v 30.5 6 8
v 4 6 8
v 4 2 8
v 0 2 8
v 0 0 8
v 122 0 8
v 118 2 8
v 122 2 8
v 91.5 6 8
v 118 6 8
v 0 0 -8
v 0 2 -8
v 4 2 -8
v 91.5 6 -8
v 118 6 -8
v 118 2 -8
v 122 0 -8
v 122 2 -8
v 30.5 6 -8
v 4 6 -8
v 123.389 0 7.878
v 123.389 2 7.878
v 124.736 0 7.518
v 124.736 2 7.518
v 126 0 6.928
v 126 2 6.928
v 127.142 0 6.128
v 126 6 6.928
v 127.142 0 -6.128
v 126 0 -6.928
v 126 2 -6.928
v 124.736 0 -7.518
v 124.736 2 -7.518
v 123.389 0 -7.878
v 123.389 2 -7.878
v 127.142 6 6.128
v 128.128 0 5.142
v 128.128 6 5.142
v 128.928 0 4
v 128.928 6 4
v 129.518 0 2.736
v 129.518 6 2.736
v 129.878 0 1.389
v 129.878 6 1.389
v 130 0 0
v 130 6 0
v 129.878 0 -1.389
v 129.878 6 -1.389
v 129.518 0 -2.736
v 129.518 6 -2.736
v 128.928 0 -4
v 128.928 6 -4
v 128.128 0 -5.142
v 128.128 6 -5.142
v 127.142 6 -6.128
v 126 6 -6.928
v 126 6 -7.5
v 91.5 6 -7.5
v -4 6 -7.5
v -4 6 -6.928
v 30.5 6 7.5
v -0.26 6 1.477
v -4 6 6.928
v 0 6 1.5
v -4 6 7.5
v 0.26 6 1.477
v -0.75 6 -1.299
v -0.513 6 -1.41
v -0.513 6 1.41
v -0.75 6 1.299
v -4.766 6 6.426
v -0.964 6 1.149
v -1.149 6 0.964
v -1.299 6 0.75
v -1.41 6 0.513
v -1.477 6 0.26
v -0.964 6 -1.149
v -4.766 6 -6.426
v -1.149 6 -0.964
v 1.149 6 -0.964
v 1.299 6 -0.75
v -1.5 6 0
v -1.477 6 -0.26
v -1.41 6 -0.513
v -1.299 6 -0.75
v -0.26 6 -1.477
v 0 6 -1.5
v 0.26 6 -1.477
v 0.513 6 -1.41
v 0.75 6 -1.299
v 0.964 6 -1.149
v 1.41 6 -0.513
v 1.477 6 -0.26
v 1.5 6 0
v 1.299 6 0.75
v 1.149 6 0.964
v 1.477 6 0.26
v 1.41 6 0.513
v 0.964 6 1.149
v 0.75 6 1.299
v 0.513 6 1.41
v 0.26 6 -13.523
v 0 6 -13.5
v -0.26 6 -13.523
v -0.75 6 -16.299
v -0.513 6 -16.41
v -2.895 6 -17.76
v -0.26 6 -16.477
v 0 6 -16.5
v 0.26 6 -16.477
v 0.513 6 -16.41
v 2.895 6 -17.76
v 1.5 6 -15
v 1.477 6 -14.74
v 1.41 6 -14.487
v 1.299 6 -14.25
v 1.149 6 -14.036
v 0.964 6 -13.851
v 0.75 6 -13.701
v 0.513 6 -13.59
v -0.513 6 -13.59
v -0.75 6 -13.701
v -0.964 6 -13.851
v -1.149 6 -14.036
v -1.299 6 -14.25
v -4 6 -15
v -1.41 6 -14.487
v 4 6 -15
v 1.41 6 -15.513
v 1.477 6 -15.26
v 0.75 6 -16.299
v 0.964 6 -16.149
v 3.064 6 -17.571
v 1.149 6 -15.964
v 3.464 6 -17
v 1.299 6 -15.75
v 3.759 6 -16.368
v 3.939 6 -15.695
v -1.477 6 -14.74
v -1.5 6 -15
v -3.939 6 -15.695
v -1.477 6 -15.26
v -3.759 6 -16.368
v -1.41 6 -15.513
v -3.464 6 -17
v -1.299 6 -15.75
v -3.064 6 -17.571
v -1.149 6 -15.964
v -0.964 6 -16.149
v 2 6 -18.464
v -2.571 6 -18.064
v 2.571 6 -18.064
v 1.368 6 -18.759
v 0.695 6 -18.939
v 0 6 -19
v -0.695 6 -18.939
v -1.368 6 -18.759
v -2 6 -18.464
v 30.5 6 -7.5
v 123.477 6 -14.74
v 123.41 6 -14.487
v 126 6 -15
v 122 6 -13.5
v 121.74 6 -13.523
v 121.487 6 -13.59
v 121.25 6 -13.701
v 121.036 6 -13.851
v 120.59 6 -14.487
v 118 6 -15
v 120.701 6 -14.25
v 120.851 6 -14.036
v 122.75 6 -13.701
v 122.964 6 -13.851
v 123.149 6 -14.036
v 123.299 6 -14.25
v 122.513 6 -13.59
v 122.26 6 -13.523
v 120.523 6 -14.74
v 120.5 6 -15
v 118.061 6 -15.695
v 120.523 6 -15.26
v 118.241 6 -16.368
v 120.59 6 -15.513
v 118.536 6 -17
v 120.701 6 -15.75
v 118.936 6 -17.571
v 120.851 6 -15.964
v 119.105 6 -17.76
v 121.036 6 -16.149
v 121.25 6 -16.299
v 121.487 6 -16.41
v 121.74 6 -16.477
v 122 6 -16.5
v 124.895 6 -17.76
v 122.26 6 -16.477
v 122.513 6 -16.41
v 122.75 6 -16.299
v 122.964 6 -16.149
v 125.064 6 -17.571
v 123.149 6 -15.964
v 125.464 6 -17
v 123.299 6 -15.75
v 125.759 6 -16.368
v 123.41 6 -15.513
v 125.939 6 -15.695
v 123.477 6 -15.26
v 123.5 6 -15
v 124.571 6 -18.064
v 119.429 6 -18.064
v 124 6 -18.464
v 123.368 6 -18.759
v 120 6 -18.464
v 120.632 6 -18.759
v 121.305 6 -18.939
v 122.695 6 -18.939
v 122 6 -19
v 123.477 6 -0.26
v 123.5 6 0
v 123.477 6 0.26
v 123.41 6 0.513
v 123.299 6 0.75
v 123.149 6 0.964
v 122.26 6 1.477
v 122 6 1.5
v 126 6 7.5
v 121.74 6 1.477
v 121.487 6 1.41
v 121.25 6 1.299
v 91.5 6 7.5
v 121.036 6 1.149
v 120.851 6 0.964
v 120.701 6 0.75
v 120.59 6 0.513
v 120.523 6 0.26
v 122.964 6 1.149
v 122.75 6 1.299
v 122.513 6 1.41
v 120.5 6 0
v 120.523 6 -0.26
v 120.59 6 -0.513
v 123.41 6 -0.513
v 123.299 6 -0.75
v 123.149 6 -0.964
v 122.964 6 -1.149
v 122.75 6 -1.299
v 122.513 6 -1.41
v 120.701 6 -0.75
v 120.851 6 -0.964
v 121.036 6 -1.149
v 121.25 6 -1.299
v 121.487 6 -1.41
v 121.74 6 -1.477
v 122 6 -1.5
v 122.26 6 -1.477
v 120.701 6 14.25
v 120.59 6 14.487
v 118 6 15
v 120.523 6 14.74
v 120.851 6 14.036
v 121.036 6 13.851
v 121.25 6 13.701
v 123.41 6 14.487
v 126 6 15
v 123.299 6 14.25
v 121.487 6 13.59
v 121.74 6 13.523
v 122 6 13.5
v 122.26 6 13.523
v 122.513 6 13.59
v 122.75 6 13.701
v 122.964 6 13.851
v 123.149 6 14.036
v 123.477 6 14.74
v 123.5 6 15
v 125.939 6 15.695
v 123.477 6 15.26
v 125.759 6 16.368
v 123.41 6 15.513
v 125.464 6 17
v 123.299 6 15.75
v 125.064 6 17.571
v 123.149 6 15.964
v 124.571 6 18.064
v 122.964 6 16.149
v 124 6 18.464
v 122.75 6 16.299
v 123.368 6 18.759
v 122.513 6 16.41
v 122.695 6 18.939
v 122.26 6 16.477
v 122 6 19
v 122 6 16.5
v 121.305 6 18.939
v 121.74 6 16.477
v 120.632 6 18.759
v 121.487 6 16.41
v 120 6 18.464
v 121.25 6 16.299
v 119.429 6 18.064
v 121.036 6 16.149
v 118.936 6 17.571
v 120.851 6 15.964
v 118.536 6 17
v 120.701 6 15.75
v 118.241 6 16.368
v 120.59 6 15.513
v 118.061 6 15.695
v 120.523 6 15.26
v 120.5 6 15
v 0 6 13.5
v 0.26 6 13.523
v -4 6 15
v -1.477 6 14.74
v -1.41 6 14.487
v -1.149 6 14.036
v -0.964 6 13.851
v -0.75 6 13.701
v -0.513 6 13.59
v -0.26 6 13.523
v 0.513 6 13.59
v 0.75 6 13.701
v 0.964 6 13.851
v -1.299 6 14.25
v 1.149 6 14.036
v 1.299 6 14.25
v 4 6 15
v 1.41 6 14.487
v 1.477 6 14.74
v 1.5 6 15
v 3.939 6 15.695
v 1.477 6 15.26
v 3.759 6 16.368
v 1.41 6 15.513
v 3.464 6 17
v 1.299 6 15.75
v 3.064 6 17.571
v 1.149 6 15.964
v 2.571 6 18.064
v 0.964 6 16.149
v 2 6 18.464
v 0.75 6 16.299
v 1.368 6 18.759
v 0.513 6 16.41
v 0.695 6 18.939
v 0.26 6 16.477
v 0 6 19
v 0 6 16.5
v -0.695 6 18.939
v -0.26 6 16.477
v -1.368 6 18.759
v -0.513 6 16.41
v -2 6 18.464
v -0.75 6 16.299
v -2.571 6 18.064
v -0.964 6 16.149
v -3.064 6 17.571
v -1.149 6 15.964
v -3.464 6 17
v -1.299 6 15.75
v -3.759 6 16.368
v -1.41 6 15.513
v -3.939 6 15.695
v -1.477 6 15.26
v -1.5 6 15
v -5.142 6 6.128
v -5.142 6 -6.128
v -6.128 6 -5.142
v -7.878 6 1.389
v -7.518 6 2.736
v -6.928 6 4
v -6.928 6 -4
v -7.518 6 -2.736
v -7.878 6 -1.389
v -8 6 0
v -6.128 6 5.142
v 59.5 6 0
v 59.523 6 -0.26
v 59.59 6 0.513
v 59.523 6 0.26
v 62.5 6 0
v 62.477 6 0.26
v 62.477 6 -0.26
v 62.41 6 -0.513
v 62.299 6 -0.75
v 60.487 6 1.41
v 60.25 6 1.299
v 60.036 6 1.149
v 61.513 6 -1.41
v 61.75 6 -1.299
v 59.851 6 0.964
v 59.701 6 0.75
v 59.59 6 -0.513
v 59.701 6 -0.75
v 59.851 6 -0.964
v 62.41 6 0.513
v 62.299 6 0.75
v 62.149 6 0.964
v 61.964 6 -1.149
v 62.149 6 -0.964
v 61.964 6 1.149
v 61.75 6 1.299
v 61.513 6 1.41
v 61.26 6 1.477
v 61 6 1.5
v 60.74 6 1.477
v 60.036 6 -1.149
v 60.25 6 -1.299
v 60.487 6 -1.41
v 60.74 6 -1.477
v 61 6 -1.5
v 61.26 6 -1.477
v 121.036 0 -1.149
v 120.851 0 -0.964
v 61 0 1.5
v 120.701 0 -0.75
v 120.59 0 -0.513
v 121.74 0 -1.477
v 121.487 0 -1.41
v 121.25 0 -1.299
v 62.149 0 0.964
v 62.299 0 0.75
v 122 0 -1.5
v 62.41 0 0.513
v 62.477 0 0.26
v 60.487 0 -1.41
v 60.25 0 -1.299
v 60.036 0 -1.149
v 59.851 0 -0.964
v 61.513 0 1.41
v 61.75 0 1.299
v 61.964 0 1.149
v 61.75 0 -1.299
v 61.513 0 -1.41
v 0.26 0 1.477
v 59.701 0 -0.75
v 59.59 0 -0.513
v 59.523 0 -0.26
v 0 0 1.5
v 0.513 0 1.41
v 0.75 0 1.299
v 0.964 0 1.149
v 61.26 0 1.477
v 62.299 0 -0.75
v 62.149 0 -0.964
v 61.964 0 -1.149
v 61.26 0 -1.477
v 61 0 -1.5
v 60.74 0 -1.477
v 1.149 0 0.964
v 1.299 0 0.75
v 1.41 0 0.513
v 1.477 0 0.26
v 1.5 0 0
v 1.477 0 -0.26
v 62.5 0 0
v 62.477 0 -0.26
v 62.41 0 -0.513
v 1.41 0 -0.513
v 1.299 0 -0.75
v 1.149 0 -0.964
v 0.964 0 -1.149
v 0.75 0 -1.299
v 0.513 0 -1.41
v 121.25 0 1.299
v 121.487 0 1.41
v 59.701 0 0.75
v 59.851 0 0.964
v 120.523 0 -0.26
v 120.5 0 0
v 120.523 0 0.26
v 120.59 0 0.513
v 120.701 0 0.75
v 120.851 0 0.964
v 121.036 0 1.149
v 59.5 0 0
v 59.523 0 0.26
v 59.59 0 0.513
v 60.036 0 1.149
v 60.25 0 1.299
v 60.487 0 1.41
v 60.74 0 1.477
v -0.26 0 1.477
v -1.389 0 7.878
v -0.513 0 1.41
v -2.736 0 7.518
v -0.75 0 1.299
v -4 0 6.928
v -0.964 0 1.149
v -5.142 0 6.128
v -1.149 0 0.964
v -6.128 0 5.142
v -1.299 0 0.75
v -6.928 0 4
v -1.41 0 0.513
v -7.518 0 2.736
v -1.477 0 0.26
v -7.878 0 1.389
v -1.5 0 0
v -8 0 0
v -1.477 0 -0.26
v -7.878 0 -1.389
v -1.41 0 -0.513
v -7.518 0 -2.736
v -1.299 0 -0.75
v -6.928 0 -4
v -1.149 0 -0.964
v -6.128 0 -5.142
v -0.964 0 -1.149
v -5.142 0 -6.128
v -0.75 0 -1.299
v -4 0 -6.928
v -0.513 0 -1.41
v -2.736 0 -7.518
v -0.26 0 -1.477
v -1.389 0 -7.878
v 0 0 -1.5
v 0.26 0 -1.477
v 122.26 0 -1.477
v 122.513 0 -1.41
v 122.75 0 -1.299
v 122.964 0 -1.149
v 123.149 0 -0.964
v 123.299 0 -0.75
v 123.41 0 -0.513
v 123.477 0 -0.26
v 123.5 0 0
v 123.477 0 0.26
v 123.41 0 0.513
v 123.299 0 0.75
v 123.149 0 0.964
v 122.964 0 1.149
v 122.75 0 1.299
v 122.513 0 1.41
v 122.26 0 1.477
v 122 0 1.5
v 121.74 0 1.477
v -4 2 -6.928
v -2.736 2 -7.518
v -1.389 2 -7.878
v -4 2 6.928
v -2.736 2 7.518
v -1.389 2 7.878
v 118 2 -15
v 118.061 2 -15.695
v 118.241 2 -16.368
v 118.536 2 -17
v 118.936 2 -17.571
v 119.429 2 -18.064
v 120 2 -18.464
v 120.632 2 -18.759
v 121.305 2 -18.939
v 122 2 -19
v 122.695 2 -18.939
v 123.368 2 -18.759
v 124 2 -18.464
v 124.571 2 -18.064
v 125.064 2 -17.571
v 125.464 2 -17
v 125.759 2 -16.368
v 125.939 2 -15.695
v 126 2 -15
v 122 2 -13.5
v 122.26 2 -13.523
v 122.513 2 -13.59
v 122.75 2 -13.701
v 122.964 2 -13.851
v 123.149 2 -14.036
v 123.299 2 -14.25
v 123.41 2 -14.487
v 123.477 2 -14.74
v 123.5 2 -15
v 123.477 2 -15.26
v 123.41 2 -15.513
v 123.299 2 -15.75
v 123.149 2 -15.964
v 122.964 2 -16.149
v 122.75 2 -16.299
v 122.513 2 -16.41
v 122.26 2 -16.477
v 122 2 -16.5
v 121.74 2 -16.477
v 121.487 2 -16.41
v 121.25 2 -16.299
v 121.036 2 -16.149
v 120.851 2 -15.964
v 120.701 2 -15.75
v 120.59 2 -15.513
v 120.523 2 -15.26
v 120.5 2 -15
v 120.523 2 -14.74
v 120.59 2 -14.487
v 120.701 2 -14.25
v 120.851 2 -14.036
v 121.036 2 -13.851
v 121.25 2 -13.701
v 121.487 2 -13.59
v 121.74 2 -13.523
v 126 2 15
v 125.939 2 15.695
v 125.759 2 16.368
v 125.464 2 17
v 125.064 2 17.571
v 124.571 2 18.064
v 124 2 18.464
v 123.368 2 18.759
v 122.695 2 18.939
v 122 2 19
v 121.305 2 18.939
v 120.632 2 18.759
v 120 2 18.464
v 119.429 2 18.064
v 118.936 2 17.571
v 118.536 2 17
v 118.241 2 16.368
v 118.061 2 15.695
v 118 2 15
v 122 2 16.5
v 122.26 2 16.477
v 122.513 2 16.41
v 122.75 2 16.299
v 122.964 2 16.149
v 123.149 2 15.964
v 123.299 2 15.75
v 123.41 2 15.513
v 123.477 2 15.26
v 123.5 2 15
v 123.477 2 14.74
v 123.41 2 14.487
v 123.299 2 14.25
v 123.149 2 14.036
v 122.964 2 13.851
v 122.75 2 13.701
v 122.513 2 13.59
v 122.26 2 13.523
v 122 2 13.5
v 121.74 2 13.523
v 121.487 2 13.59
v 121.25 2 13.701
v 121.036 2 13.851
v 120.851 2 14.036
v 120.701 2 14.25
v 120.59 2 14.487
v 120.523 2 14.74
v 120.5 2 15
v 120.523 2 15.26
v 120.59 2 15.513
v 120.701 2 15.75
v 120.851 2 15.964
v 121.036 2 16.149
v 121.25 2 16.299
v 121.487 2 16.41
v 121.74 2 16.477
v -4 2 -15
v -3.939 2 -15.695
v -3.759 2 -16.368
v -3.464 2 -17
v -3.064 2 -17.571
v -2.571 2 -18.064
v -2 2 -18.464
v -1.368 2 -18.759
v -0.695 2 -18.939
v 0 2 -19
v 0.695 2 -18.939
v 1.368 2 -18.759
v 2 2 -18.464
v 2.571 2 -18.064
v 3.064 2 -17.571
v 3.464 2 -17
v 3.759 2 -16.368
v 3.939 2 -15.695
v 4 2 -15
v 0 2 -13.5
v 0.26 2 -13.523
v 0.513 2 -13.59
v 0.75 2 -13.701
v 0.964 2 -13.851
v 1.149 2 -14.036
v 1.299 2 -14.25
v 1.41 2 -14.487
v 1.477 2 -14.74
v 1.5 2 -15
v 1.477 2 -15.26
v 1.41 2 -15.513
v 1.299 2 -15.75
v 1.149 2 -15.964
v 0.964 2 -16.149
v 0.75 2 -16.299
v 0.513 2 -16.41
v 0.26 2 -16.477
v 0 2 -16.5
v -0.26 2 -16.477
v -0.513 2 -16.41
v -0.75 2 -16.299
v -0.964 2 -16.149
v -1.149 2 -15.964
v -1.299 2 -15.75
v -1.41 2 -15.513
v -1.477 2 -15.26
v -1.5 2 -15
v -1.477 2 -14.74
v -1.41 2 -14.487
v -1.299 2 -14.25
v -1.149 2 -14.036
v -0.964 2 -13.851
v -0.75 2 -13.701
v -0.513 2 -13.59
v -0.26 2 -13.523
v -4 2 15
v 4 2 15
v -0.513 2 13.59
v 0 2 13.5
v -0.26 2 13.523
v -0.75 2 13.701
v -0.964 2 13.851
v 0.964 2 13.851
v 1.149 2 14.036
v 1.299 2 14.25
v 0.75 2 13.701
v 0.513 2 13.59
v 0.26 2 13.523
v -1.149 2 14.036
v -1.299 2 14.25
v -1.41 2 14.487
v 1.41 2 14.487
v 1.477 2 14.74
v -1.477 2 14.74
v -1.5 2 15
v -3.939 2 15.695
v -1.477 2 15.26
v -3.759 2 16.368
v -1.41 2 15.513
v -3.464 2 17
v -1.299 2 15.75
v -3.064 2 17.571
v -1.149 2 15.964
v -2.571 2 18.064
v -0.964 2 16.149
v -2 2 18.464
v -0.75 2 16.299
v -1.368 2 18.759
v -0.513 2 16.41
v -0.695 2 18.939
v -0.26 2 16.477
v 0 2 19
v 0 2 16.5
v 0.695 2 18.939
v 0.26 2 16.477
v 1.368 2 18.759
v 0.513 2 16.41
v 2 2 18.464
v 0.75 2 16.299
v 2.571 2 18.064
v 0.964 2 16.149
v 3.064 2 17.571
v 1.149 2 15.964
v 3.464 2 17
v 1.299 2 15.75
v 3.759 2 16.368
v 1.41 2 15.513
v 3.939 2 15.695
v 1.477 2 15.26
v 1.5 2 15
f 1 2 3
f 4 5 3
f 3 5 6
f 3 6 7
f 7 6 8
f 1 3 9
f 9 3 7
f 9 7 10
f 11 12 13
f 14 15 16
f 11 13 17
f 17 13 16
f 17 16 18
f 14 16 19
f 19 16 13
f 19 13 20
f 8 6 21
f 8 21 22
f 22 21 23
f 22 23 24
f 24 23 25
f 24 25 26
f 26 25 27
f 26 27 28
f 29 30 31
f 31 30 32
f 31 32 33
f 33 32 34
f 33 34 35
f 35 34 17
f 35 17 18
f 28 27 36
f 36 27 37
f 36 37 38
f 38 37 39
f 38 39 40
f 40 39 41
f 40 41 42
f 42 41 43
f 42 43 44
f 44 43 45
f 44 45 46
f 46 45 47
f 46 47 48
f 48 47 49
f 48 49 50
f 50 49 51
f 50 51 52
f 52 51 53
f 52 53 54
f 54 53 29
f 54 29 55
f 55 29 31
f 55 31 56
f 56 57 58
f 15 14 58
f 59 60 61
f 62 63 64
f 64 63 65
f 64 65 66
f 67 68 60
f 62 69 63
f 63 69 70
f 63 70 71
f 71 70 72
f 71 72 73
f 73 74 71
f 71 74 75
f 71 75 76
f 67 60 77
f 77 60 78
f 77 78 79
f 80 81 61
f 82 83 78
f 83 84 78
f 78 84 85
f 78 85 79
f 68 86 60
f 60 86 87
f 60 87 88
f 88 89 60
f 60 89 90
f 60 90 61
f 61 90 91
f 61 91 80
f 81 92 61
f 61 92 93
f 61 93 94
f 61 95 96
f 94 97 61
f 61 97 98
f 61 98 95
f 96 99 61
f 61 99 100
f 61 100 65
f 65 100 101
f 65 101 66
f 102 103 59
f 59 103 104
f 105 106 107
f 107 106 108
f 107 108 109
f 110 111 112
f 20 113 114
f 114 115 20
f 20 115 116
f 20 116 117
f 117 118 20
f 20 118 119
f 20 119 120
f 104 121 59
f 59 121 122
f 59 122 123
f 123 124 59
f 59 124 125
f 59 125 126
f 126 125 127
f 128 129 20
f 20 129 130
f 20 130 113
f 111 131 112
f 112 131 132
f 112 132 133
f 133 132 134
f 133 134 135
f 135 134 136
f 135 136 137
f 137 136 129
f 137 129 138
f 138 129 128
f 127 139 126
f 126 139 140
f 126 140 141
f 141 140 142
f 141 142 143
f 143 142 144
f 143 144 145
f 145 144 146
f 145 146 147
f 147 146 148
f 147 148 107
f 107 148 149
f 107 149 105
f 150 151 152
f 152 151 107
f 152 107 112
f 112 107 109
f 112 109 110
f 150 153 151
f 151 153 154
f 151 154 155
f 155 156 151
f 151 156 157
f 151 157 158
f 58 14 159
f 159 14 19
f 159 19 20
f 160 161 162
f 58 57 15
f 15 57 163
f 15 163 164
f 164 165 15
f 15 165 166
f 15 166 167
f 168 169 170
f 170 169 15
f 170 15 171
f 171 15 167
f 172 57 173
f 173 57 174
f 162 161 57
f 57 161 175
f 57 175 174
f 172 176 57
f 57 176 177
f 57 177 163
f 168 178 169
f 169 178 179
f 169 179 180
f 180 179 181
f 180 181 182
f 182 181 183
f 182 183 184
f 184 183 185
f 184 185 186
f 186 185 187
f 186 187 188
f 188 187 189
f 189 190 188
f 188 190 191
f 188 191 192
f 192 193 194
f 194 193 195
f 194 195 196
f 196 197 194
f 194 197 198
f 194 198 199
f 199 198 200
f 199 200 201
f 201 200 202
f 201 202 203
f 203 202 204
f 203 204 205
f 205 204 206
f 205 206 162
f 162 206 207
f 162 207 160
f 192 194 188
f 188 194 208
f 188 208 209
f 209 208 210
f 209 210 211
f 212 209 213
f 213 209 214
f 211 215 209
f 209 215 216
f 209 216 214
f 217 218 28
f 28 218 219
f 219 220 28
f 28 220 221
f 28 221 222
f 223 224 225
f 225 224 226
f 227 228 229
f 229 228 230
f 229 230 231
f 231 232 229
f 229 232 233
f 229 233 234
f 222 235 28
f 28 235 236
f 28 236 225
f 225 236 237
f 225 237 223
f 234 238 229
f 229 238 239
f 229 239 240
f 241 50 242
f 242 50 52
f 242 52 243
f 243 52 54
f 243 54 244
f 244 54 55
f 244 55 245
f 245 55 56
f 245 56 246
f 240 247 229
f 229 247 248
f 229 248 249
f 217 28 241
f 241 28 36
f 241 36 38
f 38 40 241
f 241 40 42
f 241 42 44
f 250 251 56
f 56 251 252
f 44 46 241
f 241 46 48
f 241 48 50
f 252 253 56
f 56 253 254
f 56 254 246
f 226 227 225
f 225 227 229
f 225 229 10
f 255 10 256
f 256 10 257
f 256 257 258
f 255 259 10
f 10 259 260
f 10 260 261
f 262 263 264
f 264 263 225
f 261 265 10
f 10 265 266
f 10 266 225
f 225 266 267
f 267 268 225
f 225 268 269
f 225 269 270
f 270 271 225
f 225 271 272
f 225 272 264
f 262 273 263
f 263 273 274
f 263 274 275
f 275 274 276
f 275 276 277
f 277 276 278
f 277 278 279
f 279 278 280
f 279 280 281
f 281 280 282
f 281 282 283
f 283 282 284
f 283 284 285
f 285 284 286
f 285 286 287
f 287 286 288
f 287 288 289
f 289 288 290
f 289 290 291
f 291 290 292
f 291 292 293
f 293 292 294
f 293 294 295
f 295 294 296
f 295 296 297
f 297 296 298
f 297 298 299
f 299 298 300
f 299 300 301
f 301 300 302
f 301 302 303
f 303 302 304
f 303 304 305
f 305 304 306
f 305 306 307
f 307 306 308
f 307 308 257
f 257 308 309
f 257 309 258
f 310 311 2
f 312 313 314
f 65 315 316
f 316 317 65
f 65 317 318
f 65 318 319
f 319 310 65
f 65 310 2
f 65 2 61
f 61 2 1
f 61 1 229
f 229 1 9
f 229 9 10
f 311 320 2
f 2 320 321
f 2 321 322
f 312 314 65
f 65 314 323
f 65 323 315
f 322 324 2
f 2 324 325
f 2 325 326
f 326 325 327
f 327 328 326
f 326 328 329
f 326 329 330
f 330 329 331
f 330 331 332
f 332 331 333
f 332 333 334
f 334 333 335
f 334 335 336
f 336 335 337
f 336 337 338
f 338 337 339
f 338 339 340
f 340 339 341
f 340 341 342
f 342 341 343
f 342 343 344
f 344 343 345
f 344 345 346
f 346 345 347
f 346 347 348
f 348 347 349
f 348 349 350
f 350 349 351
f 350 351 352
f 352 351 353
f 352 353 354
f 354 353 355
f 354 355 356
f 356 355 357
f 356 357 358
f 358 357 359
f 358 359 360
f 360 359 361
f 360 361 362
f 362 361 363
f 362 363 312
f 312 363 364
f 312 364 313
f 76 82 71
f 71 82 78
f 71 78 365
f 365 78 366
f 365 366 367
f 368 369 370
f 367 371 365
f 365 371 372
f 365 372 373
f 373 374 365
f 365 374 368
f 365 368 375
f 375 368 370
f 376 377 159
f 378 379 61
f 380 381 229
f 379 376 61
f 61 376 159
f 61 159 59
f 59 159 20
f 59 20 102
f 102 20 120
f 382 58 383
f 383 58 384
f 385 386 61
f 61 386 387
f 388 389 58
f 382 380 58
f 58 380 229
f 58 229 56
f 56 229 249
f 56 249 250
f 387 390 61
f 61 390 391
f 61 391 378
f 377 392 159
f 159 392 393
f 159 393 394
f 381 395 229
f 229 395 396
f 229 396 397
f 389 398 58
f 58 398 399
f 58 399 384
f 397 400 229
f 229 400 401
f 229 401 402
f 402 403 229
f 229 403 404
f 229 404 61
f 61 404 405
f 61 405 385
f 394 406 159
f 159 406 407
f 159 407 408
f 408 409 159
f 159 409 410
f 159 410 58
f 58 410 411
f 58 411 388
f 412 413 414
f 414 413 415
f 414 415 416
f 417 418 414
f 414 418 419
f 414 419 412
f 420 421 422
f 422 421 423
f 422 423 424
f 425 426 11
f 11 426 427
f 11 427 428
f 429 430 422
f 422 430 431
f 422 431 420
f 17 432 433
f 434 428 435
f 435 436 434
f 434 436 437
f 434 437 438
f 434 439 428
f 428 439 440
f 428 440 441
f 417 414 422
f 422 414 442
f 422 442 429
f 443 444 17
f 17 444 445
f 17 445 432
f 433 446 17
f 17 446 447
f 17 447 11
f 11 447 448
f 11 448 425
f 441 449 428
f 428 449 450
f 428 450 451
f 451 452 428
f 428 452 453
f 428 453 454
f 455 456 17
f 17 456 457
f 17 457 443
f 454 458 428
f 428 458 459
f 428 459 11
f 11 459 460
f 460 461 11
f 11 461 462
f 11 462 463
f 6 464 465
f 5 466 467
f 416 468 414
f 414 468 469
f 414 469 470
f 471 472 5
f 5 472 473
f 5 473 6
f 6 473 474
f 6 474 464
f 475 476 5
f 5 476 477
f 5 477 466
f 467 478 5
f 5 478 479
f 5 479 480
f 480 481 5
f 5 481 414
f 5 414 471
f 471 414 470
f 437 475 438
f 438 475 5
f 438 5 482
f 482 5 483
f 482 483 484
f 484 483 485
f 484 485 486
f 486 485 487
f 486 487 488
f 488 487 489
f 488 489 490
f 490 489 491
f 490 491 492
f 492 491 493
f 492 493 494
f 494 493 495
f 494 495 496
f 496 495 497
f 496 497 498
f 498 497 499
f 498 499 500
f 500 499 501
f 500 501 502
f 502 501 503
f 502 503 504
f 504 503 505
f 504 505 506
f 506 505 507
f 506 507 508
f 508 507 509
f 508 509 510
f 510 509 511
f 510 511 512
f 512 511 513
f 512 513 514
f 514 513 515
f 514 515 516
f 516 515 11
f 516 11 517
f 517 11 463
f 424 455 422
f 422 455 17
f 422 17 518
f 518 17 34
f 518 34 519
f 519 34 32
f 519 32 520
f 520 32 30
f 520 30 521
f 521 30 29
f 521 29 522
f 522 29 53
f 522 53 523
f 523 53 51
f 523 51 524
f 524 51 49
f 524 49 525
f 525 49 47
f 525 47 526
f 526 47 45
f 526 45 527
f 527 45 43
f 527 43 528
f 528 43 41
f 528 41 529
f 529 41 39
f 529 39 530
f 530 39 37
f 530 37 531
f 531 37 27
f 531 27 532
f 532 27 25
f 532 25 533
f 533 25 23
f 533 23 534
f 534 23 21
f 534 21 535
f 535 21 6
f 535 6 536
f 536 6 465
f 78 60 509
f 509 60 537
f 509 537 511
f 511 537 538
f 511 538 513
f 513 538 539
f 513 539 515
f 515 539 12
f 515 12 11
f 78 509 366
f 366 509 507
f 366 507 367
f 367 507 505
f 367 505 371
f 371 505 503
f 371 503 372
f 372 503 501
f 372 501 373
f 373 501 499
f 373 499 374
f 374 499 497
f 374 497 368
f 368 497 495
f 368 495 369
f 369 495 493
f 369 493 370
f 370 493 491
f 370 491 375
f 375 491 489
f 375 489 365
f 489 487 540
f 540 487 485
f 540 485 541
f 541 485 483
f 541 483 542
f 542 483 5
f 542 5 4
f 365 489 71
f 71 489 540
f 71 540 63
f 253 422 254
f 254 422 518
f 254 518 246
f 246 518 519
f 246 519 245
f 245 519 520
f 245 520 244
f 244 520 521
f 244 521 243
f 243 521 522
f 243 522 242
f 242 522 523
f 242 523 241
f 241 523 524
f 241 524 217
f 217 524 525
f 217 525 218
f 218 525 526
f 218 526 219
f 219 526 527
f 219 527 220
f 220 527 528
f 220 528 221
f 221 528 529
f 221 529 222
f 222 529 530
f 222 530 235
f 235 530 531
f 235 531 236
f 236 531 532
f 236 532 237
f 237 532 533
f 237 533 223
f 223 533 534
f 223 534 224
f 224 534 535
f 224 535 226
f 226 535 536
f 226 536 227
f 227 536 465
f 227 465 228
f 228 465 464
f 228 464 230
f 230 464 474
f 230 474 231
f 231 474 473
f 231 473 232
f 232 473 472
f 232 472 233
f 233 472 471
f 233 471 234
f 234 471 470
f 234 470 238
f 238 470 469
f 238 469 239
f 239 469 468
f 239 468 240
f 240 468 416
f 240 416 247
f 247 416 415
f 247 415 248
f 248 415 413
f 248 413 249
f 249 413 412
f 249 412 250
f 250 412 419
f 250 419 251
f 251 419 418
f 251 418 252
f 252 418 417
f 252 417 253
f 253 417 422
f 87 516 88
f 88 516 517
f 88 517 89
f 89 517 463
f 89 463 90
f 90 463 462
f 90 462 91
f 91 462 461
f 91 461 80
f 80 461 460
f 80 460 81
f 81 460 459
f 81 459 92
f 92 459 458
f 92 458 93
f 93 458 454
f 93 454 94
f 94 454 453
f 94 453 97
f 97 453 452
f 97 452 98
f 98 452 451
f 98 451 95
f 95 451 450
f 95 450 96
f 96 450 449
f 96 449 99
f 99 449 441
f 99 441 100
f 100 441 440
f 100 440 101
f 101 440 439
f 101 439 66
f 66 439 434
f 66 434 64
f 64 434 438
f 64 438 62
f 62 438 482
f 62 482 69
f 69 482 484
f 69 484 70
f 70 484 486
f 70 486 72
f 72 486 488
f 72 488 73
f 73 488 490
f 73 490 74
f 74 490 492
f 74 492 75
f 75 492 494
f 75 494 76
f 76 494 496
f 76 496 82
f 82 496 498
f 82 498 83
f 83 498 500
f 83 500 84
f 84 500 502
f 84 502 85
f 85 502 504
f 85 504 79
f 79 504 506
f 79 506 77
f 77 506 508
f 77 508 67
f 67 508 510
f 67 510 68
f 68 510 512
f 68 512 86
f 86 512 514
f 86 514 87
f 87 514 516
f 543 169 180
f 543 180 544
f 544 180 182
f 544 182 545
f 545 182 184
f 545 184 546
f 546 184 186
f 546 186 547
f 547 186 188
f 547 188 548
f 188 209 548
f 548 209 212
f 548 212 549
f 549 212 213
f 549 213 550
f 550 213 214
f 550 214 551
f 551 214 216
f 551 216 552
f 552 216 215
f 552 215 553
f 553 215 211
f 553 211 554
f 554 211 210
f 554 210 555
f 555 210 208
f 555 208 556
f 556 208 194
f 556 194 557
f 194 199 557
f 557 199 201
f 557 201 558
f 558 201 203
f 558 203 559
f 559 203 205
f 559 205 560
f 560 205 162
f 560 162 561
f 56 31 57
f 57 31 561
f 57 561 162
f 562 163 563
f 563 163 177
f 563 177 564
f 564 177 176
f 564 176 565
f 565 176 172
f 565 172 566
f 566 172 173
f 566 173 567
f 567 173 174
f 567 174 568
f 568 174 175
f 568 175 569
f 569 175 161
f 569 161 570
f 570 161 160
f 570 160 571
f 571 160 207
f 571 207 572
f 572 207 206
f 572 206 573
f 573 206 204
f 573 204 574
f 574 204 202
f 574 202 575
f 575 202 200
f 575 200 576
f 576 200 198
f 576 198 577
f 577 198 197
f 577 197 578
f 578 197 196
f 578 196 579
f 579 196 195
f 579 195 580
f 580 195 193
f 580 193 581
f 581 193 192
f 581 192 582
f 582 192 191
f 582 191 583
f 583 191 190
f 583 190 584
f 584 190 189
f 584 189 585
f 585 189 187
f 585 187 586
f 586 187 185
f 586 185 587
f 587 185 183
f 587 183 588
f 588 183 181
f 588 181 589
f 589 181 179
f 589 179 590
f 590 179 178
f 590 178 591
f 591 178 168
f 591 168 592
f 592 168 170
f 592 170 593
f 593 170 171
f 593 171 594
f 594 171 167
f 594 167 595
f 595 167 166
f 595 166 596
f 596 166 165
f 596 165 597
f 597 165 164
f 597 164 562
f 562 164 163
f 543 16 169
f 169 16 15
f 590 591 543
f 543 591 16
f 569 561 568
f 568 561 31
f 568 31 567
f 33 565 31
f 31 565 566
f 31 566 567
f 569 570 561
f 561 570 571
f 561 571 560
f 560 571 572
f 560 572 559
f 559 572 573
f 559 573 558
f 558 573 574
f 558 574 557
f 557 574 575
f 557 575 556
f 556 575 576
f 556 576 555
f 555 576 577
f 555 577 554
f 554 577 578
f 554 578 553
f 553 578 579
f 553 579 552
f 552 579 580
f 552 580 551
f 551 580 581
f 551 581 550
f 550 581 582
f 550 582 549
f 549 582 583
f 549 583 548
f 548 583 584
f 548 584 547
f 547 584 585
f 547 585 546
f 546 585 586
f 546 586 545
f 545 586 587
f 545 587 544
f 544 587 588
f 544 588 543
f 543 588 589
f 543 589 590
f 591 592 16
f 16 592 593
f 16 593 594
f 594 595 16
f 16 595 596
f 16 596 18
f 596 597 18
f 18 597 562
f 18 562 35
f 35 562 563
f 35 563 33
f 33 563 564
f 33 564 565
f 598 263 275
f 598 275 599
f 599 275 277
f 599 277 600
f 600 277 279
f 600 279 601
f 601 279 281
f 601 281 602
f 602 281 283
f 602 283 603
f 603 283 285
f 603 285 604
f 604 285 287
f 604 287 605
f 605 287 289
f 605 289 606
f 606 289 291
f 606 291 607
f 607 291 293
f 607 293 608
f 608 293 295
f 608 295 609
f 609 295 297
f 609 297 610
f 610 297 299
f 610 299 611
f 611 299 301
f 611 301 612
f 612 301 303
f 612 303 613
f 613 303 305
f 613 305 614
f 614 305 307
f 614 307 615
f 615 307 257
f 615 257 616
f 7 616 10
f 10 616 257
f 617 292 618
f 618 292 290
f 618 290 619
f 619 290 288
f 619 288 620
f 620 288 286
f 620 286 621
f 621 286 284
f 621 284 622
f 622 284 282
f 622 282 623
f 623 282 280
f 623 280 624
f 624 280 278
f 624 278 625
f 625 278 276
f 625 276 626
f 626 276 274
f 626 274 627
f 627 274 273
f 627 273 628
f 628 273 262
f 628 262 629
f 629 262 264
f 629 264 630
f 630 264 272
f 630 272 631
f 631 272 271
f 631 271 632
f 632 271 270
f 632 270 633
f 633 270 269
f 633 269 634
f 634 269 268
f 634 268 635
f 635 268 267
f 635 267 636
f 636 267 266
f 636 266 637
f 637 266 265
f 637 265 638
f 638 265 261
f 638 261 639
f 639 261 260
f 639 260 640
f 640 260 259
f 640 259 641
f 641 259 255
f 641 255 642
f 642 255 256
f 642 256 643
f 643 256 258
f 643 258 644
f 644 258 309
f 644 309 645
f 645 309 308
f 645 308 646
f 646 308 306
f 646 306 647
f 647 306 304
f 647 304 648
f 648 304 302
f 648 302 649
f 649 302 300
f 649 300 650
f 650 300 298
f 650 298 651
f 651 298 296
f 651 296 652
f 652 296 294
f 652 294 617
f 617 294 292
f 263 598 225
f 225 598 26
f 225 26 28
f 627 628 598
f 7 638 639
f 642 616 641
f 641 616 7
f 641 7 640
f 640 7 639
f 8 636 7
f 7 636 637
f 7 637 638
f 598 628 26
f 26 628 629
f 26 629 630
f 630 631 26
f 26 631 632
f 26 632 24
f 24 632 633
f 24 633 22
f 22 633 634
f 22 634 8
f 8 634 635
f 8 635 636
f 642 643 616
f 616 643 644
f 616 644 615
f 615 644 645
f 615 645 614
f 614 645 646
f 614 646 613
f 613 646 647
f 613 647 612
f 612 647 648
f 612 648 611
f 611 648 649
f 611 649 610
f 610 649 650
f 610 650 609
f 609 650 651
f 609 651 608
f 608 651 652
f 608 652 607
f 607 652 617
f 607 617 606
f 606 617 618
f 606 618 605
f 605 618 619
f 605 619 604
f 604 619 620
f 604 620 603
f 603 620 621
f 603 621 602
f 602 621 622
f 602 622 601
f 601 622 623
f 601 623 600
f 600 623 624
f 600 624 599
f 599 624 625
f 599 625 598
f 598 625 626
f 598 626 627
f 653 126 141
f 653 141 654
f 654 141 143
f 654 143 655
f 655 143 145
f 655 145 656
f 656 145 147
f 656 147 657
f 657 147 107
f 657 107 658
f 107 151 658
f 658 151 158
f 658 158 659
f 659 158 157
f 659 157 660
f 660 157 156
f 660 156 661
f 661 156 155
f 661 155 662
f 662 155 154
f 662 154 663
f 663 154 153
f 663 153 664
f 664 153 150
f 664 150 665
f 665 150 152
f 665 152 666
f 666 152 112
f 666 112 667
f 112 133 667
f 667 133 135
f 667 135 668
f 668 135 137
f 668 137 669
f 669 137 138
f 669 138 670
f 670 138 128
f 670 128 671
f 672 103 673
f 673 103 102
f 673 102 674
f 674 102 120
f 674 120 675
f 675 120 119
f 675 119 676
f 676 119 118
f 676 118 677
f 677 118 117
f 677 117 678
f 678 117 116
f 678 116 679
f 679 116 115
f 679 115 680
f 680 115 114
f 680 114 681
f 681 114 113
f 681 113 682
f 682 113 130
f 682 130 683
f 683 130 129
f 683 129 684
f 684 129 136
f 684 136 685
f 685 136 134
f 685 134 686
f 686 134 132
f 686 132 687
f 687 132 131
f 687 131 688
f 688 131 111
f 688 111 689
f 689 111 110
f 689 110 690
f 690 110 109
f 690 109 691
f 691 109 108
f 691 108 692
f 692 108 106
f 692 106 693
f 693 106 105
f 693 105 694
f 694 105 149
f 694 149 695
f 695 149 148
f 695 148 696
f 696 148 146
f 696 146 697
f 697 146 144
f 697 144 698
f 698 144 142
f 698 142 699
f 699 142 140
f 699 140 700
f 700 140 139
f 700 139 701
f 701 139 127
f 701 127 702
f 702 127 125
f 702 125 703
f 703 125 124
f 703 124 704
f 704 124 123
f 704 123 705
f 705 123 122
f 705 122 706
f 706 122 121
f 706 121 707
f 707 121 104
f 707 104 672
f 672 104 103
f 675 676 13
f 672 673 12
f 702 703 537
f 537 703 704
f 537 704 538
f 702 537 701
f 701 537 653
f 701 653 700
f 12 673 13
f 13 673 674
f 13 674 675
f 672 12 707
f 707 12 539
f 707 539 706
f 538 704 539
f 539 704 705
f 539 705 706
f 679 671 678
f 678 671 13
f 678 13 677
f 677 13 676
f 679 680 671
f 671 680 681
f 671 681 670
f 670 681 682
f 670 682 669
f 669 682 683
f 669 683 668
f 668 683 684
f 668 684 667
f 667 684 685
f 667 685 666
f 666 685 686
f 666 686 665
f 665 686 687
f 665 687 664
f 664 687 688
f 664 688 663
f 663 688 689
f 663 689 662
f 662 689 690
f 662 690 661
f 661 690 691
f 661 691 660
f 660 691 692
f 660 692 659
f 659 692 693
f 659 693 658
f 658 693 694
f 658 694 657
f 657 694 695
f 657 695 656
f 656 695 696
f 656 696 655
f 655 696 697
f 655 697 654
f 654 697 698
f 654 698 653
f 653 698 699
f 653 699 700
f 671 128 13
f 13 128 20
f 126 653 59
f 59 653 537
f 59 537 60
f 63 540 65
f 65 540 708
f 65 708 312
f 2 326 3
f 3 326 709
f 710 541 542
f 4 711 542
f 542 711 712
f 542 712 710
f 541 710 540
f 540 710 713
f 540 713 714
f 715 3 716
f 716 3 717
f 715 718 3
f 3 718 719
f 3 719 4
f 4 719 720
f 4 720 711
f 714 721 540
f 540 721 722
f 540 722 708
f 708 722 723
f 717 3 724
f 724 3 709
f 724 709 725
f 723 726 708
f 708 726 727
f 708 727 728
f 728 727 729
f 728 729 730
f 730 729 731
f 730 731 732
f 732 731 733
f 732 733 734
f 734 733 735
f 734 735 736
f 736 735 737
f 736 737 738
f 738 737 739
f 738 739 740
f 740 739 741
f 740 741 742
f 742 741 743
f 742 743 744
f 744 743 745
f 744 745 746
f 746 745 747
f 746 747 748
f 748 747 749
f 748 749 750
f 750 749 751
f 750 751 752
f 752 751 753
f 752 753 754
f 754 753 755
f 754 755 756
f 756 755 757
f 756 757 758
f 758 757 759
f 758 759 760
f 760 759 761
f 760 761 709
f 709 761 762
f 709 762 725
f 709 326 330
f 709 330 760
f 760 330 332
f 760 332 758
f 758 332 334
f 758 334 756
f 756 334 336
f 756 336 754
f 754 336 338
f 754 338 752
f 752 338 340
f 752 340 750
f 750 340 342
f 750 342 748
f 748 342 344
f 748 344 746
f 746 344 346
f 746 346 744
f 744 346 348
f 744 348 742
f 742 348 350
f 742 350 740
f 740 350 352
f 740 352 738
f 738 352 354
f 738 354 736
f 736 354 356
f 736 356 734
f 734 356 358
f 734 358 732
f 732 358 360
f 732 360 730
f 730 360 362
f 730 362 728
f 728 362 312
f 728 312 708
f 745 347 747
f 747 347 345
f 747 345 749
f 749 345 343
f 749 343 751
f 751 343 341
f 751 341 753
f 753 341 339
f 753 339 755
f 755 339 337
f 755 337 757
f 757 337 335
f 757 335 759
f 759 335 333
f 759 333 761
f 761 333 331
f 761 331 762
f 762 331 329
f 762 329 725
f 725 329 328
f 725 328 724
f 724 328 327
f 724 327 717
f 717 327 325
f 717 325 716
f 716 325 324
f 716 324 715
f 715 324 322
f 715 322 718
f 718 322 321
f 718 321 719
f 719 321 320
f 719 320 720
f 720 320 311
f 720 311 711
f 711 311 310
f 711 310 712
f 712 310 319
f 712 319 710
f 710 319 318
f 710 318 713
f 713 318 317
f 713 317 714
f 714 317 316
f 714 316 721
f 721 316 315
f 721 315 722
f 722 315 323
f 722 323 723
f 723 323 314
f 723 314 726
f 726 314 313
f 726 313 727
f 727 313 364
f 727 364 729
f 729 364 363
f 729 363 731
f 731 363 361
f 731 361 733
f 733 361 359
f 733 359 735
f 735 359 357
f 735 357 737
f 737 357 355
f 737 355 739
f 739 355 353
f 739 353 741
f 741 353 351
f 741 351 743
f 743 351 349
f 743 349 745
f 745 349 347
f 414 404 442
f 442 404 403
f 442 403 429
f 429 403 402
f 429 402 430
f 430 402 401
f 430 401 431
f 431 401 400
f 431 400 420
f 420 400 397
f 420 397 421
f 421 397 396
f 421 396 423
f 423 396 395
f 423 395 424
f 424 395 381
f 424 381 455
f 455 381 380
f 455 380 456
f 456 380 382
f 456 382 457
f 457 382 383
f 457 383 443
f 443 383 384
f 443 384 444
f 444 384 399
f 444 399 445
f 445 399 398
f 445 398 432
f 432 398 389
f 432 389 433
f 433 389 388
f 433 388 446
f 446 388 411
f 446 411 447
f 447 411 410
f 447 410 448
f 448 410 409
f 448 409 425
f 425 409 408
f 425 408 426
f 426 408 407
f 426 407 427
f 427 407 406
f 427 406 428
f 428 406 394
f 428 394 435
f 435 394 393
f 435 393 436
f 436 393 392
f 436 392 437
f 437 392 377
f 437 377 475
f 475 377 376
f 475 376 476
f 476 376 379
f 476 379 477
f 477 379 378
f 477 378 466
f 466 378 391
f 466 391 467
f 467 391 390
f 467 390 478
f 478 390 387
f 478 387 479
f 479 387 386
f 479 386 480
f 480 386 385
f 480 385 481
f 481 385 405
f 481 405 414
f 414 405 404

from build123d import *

# Parameters (mm, degrees)
SKETCH1_R           = 1.5
BOSS_EXTRUDE1_DEPTH = 6
SKETCH2_R           = 1.5
BOSS_EXTRUDE2_DEPTH = 4
SKETCH3_R           = 1.5
CUT_EXTRUDE1_DEPTH  = 10


with BuildPart() as part:
    # Sketch1 → Boss-Extrude1 (new body)
    with BuildSketch(Plane(origin=(0, 0, 0), x_dir=(1, 0, 0), z_dir=(0, 1, 0))):
        with BuildLine():
            Line((0, 8), (122, 8))
            ThreePointArc((122, 8), (130, 0), (122, -8))
            Line((122, -8), (0, -8))
            ThreePointArc((0, -8), (-8, 0), (0, 8))
        make_face()
        Circle(SKETCH1_R, mode=Mode.SUBTRACT)
        with Locations((122, 0)):
            Circle(SKETCH1_R, mode=Mode.SUBTRACT)
    extrude(amount=BOSS_EXTRUDE1_DEPTH)

    # Sketch2 → Boss-Extrude2 (add)
    with BuildSketch(Plane(origin=(0, 6, 0), x_dir=(1, 0, 0), z_dir=(0, 1, 0))):
        with BuildLine():
            Line((4, 8), (4, 15))
            ThreePointArc((4, 15), (0, 19), (-4, 15))
            Line((-4, 15), (-4, 6.92820323))
            ThreePointArc((-4, 6.92820323), (-2.070552361, 7.72740661), (0, 8))
            Line((0, 8), (4, 8))
        make_face()
        with Locations((0, 15)):
            Circle(SKETCH2_R, mode=Mode.SUBTRACT)
        with BuildLine():
            Line((4, -15), (4, -8))
            Line((4, -8), (0, -8))
            ThreePointArc((0, -8), (-2.070552361, -7.72740661), (-4, -6.92820323))
            Line((-4, -6.92820323), (-4, -15))
            ThreePointArc((-4, -15), (0, -19), (4, -15))
        make_face()
        with Locations((0, -15)):
            Circle(SKETCH2_R, mode=Mode.SUBTRACT)
        with BuildLine():
            Line((118, 15), (118, 8))
            Line((118, 8), (122, 8))
            ThreePointArc((122, 8), (124.070552361, 7.72740661), (126, 6.92820323))
            Line((126, 6.92820323), (126, 15))
            ThreePointArc((126, 15), (122, 19), (118, 15))
        make_face()
        with Locations((122, 15)):
            Circle(SKETCH2_R, mode=Mode.SUBTRACT)
        with BuildLine():
            Line((122, -8), (118, -8))
            Line((118, -8), (118, -15))
            ThreePointArc((118, -15), (122, -19), (126, -15))
            Line((126, -15), (126, -6.92820323))
            ThreePointArc((126, -6.92820323), (124.070552361, -7.72740661), (122, -8))
        make_face()
        with Locations((122, -15)):
            Circle(SKETCH2_R, mode=Mode.SUBTRACT)
    extrude(amount=-BOSS_EXTRUDE2_DEPTH)

    # Sketch3 → Cut-Extrude1 (cut)
    with BuildSketch(Plane(origin=(0, 6, 0), x_dir=(1, 0, 0), z_dir=(0, 1, 0))):
        with Locations((61, 0)):
            Circle(SKETCH3_R)
    extrude(amount=-CUT_EXTRUDE1_DEPTH, mode=Mode.SUBTRACT)


solid = part.part
